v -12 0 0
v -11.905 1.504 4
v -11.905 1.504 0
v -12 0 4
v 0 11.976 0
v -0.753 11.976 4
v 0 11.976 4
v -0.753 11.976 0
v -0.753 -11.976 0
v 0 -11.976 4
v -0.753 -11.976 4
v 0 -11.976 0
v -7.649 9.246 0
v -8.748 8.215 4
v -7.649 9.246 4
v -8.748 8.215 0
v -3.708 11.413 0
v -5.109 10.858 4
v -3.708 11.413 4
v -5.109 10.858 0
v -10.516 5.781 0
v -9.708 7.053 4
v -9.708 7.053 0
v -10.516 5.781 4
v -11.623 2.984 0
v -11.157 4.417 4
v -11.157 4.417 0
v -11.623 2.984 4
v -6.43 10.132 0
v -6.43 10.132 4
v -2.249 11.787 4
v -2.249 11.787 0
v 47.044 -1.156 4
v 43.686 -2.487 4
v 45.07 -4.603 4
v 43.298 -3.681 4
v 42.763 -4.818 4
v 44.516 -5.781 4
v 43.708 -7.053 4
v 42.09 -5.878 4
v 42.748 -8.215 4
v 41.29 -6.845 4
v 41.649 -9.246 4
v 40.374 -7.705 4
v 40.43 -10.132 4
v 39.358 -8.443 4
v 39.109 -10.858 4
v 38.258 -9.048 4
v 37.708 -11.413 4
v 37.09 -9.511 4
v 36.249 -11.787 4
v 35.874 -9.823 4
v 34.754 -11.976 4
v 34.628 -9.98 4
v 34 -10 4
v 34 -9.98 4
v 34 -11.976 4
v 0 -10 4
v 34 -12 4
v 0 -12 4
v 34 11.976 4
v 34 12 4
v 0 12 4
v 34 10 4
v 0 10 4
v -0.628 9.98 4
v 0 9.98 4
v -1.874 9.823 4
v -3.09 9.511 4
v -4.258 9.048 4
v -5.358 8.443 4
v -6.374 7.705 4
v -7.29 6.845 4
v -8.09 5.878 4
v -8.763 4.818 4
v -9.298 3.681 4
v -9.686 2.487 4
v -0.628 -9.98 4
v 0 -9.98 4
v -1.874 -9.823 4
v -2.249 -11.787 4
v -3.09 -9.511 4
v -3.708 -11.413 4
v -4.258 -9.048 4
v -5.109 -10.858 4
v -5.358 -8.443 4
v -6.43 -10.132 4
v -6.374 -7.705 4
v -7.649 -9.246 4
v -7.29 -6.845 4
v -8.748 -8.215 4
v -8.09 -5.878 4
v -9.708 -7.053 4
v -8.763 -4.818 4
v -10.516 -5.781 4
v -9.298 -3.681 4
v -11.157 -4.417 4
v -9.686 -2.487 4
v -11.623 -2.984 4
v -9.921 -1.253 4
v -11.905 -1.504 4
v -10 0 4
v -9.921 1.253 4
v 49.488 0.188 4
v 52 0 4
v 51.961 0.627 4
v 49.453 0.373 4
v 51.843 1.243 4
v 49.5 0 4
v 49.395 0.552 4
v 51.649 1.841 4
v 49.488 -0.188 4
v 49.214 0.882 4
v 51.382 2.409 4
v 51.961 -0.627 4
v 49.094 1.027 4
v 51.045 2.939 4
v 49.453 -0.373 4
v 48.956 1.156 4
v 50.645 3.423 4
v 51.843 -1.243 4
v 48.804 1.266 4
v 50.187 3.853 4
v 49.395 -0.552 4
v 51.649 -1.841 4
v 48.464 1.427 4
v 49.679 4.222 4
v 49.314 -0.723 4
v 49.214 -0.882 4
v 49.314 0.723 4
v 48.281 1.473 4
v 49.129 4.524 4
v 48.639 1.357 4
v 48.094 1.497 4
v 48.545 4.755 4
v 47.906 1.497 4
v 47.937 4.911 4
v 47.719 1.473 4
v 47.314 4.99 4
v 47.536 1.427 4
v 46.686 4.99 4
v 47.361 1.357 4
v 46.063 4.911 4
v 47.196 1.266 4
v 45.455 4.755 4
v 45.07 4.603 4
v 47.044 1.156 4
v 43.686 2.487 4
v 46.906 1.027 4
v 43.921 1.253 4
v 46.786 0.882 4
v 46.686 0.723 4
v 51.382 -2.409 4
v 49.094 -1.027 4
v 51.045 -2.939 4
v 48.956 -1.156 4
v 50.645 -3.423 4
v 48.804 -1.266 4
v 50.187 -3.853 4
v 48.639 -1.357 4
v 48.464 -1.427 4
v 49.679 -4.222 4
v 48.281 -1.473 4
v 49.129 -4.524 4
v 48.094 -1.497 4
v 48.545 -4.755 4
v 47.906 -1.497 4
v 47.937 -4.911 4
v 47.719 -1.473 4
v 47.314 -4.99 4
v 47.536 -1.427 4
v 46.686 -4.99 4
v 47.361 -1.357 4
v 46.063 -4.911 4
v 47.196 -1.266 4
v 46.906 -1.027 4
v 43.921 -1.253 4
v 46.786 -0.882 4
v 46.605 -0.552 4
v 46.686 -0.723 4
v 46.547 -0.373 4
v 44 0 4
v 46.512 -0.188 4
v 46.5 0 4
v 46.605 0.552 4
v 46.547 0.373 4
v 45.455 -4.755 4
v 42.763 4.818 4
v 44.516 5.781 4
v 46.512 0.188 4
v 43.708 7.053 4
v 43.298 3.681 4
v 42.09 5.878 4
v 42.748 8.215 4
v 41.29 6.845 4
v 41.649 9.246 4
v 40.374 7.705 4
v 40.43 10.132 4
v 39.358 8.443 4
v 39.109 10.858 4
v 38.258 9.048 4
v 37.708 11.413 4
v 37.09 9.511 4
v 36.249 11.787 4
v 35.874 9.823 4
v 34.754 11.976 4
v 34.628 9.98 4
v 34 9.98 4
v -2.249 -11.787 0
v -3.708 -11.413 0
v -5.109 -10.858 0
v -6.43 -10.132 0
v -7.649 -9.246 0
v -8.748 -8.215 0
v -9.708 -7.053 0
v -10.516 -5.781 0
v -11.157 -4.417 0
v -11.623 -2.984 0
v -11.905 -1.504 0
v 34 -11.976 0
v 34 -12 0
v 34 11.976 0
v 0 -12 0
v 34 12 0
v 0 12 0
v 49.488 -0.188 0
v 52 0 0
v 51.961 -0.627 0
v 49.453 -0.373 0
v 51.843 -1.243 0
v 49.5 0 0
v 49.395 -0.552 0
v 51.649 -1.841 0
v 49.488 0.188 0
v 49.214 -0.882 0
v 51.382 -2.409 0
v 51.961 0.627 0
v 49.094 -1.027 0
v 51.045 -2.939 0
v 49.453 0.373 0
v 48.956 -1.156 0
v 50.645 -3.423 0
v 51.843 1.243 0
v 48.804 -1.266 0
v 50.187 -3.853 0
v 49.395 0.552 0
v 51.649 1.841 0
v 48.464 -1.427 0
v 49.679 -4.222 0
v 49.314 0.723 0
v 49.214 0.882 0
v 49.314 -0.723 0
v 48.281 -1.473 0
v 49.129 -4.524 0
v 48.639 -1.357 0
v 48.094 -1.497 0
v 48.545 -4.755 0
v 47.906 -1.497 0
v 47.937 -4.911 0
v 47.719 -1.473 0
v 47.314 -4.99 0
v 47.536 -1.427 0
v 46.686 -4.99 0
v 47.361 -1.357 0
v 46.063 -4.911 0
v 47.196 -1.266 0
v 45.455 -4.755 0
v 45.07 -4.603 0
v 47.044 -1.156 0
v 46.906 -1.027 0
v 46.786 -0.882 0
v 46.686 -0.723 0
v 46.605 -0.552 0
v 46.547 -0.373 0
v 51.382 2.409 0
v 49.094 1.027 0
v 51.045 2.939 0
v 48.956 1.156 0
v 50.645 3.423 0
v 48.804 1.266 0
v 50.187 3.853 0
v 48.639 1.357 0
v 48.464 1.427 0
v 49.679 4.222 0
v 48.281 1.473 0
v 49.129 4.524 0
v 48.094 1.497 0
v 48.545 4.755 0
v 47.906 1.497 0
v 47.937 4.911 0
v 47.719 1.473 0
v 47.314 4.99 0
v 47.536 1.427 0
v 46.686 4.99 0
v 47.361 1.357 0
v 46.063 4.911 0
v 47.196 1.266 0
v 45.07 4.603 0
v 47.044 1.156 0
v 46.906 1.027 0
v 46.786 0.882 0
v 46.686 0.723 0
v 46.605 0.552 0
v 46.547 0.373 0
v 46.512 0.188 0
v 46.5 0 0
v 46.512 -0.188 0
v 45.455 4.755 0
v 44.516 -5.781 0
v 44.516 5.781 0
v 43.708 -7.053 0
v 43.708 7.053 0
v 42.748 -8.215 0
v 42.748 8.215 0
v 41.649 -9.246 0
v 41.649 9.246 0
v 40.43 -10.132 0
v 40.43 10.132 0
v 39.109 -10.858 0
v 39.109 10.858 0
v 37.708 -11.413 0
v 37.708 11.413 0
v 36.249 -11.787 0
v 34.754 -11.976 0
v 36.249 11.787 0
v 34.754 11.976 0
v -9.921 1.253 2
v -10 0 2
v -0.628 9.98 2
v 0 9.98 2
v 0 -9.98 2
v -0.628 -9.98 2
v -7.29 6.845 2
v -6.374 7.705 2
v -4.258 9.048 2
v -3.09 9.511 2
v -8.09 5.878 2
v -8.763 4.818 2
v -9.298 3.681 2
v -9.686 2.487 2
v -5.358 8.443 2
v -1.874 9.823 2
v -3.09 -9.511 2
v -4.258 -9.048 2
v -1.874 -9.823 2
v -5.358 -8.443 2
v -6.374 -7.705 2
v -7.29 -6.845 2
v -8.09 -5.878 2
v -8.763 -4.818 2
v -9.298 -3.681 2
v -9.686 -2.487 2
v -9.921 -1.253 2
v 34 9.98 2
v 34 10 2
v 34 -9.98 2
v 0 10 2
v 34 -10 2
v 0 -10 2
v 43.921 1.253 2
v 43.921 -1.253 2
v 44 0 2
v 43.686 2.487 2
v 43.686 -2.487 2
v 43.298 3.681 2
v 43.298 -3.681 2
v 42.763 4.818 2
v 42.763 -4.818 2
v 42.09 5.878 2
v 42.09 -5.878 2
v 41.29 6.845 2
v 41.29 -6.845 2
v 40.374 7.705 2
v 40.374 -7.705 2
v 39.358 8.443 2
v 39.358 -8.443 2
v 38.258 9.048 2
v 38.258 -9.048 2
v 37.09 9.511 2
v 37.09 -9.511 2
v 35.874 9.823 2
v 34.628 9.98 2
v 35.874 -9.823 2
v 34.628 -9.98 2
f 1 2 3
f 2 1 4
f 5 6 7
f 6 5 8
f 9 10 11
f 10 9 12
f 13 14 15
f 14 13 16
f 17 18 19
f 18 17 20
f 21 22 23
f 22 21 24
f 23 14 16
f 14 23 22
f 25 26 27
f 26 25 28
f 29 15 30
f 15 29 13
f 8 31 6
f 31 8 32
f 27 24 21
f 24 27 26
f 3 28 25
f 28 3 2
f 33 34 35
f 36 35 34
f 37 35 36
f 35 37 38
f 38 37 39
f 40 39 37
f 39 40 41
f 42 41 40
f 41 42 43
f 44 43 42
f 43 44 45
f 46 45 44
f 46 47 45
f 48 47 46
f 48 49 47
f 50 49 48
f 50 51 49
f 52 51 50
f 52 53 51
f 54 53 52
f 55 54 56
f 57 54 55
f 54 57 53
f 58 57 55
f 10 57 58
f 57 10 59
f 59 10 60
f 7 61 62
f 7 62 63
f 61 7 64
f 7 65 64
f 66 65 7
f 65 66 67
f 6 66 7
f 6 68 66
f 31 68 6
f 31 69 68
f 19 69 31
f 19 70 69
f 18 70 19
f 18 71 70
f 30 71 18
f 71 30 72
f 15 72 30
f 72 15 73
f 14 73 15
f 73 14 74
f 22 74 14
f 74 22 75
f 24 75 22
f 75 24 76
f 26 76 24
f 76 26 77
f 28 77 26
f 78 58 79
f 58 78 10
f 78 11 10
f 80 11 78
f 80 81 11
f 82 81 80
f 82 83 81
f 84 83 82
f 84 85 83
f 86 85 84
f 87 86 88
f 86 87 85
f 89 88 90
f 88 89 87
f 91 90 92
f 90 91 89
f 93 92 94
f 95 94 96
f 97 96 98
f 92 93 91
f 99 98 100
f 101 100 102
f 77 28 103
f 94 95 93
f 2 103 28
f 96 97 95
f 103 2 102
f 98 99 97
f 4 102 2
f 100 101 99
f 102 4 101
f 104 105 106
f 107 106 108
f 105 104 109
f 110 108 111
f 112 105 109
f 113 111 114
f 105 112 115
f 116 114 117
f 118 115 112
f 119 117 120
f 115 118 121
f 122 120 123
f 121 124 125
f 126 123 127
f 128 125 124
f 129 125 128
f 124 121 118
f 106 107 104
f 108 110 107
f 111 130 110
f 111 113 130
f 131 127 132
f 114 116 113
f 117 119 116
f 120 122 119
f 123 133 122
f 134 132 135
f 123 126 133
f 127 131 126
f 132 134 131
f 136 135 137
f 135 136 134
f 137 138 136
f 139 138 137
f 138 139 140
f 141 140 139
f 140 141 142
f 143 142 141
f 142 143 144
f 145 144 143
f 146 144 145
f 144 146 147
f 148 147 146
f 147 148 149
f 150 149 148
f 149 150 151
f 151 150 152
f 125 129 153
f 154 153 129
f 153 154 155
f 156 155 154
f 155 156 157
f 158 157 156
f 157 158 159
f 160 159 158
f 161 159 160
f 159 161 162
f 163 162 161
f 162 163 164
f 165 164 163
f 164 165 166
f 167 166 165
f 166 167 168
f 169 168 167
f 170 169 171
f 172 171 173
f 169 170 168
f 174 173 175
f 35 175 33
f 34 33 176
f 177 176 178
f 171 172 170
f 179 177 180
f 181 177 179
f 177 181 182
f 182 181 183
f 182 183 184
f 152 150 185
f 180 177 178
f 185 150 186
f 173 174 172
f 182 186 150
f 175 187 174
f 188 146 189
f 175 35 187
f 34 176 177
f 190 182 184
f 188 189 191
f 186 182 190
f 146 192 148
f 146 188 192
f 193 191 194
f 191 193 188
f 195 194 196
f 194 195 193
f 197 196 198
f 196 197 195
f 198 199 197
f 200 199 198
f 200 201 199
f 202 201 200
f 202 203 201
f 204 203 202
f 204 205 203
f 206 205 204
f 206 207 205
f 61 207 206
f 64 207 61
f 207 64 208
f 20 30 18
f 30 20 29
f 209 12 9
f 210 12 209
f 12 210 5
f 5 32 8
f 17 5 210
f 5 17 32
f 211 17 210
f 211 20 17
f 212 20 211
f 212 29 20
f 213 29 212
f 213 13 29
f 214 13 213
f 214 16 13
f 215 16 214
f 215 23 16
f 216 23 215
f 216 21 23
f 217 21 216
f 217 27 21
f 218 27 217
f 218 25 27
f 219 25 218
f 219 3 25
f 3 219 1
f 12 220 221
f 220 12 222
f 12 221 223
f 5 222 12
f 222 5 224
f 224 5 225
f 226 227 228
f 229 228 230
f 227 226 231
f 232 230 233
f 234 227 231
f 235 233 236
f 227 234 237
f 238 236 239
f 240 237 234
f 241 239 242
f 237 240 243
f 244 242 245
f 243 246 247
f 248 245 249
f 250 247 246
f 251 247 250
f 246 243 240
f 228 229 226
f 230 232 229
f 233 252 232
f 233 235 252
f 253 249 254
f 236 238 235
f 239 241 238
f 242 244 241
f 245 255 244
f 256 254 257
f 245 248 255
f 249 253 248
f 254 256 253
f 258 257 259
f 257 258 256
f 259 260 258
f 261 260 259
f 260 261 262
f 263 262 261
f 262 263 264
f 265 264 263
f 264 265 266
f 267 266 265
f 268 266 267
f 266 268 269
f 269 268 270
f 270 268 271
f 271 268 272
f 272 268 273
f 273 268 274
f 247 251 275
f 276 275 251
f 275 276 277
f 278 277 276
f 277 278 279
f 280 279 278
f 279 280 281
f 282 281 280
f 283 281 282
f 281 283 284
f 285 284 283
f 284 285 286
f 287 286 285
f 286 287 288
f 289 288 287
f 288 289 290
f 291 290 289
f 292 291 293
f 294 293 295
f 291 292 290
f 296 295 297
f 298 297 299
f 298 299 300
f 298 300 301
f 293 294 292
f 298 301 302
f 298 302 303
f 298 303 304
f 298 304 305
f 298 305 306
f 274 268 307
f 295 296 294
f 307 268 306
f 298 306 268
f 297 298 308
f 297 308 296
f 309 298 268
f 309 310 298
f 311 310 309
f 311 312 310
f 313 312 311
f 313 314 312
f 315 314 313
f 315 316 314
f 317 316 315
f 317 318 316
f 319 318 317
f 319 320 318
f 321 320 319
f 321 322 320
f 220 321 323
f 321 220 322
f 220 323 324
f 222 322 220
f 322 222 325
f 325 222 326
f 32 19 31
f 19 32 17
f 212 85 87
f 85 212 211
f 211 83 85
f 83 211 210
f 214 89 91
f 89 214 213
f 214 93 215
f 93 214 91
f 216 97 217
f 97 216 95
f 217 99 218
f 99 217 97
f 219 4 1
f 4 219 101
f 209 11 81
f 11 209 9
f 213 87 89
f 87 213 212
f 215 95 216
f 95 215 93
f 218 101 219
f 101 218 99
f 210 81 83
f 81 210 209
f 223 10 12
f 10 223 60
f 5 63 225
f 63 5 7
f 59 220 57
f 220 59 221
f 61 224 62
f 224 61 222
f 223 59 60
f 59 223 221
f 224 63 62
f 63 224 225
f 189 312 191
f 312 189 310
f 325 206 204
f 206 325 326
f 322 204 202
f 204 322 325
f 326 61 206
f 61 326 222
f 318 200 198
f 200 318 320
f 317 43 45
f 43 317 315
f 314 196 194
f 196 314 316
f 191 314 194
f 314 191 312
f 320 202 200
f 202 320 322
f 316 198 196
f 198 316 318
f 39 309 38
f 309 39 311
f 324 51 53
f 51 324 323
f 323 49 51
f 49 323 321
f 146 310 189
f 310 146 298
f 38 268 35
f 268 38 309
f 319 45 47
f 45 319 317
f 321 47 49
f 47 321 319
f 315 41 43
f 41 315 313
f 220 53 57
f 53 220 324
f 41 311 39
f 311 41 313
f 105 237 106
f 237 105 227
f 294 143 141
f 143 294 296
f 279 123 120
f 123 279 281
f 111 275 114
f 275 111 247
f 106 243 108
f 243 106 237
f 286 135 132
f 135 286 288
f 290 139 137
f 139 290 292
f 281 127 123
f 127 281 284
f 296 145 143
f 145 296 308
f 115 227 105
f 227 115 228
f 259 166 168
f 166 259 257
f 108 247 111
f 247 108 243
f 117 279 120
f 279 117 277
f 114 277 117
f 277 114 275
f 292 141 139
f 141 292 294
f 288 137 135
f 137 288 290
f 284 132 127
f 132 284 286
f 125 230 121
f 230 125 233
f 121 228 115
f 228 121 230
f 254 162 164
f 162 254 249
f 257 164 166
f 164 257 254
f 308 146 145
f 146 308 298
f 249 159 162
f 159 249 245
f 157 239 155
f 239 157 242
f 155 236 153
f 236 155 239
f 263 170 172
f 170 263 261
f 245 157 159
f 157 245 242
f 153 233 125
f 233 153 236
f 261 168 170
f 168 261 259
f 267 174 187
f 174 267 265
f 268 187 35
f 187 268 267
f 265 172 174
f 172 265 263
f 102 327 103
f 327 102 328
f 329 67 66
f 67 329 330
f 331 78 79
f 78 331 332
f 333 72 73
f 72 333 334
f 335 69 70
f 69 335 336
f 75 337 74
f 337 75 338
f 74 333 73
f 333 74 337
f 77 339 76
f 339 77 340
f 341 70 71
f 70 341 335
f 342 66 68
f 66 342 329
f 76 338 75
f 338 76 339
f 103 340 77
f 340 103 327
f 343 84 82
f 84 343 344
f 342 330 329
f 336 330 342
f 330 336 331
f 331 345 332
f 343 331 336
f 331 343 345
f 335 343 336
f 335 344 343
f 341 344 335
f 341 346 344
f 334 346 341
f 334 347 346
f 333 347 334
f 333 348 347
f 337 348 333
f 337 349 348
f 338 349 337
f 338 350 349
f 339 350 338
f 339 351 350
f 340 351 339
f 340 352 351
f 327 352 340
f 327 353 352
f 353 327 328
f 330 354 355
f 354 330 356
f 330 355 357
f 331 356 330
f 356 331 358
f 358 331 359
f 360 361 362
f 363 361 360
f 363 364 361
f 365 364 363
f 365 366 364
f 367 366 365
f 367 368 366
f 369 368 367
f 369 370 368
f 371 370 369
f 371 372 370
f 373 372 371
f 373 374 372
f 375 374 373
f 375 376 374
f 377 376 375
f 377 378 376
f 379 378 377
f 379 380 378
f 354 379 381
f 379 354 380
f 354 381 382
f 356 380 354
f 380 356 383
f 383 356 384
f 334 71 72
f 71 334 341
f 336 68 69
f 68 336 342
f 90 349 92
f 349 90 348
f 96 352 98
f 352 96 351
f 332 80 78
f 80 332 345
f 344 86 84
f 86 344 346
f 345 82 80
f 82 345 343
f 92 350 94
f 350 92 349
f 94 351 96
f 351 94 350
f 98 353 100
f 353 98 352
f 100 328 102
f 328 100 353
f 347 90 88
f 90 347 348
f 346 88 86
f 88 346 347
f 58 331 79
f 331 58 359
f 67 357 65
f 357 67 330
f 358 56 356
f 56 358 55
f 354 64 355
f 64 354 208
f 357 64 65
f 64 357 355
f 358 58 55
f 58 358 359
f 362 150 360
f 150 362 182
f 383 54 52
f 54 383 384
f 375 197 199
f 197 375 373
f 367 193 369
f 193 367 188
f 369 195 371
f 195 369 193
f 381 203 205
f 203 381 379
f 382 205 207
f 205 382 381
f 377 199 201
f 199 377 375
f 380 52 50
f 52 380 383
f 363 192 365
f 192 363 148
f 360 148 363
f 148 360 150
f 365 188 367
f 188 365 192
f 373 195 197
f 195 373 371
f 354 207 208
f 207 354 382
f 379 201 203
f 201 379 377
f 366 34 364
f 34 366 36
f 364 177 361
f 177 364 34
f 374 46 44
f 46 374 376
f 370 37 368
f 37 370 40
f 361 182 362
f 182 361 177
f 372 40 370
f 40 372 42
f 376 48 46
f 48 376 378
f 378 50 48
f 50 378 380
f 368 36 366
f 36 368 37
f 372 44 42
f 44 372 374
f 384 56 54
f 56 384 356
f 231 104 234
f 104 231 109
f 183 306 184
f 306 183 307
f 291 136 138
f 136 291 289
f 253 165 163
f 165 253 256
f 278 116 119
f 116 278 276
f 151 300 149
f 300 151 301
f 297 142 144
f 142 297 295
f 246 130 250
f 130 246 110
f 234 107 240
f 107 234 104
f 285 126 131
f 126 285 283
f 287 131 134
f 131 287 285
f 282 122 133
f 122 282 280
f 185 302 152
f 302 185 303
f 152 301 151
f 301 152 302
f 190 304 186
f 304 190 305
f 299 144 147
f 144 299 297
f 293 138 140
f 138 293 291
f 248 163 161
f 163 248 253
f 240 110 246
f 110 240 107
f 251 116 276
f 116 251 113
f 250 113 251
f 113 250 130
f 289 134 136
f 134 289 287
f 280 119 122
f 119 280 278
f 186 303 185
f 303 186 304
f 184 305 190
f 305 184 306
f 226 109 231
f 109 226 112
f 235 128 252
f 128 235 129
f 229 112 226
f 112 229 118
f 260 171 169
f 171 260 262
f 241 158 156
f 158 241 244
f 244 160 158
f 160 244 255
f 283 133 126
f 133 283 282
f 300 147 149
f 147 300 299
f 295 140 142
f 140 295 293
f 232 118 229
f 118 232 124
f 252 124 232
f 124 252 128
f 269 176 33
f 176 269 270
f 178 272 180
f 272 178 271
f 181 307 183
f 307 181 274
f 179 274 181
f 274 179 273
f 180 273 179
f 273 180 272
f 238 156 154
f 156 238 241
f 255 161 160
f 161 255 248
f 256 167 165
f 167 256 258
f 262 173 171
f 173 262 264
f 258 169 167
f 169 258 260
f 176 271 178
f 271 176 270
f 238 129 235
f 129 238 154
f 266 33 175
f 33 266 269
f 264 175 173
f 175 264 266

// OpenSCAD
$fn=50;
difference() {
    union() {
        cylinder(4,24/2,24/2);
        translate([0,-12,0])cube([34,24,4]);
        translate([34,0,0])cylinder(4,24/2,24/2);
        translate([47,0,0])cylinder(4,10/2,10/2);
    }
    translate([0,0,2])cylinder(2,20/2,20/2);
    translate([0,-10,2])cube([34,20,2]);
    translate([34,0,2])cylinder(2,20/2,20/2);
    translate([48,0,0])cylinder(4,3/2,3/2);
}
